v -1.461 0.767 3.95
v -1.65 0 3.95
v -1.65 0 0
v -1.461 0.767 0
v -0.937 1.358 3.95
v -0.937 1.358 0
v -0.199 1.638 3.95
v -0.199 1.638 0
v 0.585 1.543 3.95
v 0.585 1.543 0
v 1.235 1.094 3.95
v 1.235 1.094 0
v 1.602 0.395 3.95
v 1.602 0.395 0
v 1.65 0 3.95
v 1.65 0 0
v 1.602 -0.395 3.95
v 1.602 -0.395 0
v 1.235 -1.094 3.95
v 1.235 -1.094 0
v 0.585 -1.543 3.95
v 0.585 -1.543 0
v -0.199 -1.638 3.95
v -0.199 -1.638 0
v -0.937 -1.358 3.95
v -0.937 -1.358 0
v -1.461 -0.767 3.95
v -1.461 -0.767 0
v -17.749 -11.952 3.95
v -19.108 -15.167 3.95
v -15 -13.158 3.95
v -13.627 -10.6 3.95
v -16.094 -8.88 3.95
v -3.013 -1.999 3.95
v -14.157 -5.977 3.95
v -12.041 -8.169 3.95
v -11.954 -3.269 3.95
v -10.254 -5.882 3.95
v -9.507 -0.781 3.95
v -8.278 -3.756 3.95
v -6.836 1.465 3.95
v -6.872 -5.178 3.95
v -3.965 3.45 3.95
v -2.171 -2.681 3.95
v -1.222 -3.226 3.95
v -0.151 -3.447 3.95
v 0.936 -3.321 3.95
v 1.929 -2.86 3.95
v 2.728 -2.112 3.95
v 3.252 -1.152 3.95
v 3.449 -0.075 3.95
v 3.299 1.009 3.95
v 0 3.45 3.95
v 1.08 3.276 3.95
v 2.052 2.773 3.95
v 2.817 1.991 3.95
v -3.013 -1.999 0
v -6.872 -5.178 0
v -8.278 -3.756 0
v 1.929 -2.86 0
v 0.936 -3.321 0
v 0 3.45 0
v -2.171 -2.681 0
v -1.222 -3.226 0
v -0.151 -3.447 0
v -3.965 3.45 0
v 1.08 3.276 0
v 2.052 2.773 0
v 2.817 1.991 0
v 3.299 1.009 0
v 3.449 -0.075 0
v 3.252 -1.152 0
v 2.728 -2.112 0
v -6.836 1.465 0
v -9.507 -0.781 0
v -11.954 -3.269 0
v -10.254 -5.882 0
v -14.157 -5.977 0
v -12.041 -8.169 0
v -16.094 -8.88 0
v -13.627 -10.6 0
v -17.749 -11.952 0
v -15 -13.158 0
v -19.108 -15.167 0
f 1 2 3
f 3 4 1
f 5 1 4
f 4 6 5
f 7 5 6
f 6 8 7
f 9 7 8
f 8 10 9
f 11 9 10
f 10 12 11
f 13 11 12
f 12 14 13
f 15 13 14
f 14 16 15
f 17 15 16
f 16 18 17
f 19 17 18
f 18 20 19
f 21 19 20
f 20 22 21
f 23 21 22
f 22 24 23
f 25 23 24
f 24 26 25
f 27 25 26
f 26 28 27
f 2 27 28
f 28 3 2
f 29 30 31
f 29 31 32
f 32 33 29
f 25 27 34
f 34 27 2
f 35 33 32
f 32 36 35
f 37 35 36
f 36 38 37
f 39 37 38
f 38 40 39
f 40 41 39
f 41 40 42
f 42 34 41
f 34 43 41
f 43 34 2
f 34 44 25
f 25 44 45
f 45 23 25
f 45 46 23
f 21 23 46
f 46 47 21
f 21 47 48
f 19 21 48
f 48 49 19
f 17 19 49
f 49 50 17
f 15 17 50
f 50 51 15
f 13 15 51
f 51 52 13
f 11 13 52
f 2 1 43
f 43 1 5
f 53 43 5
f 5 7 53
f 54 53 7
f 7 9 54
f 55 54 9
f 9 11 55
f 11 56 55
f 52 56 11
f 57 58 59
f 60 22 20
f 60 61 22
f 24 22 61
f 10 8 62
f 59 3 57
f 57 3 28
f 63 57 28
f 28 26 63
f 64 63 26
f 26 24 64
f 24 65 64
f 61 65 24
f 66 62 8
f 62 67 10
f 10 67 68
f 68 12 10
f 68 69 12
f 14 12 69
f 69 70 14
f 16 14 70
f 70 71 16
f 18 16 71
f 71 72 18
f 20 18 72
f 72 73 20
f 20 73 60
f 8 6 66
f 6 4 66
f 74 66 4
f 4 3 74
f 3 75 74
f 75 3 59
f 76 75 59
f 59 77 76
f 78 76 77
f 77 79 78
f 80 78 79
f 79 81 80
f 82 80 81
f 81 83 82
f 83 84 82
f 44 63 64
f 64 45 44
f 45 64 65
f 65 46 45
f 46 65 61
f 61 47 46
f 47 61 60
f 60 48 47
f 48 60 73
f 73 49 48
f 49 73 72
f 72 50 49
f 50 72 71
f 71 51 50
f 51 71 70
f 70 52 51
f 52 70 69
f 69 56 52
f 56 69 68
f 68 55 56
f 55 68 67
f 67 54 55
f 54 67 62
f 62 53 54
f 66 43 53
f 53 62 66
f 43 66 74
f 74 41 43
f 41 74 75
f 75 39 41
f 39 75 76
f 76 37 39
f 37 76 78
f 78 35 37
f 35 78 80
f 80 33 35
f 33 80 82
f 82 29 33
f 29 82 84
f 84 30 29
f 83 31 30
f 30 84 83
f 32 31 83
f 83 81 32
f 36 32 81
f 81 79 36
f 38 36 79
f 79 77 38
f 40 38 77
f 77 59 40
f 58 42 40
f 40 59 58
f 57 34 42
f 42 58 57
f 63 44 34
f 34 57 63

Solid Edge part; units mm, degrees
sketch "Sketch1" plane through (0, 0, 0) normal (0, 0, 1) x (1, 0, 0)
  line L0 (-2.1713, -2.681) -> (-3.013, -1.9994)
  line L1 (-3.013, -1.9994) -> (-6.8721, -5.1785)
  line L2 (-6.8721, -5.1785) -> (-8.2777, -3.7557)
  line L3 (-15, -13.1578) -> (-19.1075, -15.1675)
  line L4 (0, 3.45) -> (-3.9649, 3.45)
  arc A0 (0, 3.45) -> (-2.1713, -2.681) centre (0, 0) cw
  arc A1 (-15, -13.1578) -> (-8.2777, -3.7557) centre (15.6166, -27.9437) cw
  arc A2 (-19.1076, -15.1675) -> (-3.9649, 3.45) centre (15.6166, -27.9437) cw
  circle A3 centre (0, 0) radius 1.65
extrude "Protrusion1" add sketch "Sketch1" along normal blind 3.95
